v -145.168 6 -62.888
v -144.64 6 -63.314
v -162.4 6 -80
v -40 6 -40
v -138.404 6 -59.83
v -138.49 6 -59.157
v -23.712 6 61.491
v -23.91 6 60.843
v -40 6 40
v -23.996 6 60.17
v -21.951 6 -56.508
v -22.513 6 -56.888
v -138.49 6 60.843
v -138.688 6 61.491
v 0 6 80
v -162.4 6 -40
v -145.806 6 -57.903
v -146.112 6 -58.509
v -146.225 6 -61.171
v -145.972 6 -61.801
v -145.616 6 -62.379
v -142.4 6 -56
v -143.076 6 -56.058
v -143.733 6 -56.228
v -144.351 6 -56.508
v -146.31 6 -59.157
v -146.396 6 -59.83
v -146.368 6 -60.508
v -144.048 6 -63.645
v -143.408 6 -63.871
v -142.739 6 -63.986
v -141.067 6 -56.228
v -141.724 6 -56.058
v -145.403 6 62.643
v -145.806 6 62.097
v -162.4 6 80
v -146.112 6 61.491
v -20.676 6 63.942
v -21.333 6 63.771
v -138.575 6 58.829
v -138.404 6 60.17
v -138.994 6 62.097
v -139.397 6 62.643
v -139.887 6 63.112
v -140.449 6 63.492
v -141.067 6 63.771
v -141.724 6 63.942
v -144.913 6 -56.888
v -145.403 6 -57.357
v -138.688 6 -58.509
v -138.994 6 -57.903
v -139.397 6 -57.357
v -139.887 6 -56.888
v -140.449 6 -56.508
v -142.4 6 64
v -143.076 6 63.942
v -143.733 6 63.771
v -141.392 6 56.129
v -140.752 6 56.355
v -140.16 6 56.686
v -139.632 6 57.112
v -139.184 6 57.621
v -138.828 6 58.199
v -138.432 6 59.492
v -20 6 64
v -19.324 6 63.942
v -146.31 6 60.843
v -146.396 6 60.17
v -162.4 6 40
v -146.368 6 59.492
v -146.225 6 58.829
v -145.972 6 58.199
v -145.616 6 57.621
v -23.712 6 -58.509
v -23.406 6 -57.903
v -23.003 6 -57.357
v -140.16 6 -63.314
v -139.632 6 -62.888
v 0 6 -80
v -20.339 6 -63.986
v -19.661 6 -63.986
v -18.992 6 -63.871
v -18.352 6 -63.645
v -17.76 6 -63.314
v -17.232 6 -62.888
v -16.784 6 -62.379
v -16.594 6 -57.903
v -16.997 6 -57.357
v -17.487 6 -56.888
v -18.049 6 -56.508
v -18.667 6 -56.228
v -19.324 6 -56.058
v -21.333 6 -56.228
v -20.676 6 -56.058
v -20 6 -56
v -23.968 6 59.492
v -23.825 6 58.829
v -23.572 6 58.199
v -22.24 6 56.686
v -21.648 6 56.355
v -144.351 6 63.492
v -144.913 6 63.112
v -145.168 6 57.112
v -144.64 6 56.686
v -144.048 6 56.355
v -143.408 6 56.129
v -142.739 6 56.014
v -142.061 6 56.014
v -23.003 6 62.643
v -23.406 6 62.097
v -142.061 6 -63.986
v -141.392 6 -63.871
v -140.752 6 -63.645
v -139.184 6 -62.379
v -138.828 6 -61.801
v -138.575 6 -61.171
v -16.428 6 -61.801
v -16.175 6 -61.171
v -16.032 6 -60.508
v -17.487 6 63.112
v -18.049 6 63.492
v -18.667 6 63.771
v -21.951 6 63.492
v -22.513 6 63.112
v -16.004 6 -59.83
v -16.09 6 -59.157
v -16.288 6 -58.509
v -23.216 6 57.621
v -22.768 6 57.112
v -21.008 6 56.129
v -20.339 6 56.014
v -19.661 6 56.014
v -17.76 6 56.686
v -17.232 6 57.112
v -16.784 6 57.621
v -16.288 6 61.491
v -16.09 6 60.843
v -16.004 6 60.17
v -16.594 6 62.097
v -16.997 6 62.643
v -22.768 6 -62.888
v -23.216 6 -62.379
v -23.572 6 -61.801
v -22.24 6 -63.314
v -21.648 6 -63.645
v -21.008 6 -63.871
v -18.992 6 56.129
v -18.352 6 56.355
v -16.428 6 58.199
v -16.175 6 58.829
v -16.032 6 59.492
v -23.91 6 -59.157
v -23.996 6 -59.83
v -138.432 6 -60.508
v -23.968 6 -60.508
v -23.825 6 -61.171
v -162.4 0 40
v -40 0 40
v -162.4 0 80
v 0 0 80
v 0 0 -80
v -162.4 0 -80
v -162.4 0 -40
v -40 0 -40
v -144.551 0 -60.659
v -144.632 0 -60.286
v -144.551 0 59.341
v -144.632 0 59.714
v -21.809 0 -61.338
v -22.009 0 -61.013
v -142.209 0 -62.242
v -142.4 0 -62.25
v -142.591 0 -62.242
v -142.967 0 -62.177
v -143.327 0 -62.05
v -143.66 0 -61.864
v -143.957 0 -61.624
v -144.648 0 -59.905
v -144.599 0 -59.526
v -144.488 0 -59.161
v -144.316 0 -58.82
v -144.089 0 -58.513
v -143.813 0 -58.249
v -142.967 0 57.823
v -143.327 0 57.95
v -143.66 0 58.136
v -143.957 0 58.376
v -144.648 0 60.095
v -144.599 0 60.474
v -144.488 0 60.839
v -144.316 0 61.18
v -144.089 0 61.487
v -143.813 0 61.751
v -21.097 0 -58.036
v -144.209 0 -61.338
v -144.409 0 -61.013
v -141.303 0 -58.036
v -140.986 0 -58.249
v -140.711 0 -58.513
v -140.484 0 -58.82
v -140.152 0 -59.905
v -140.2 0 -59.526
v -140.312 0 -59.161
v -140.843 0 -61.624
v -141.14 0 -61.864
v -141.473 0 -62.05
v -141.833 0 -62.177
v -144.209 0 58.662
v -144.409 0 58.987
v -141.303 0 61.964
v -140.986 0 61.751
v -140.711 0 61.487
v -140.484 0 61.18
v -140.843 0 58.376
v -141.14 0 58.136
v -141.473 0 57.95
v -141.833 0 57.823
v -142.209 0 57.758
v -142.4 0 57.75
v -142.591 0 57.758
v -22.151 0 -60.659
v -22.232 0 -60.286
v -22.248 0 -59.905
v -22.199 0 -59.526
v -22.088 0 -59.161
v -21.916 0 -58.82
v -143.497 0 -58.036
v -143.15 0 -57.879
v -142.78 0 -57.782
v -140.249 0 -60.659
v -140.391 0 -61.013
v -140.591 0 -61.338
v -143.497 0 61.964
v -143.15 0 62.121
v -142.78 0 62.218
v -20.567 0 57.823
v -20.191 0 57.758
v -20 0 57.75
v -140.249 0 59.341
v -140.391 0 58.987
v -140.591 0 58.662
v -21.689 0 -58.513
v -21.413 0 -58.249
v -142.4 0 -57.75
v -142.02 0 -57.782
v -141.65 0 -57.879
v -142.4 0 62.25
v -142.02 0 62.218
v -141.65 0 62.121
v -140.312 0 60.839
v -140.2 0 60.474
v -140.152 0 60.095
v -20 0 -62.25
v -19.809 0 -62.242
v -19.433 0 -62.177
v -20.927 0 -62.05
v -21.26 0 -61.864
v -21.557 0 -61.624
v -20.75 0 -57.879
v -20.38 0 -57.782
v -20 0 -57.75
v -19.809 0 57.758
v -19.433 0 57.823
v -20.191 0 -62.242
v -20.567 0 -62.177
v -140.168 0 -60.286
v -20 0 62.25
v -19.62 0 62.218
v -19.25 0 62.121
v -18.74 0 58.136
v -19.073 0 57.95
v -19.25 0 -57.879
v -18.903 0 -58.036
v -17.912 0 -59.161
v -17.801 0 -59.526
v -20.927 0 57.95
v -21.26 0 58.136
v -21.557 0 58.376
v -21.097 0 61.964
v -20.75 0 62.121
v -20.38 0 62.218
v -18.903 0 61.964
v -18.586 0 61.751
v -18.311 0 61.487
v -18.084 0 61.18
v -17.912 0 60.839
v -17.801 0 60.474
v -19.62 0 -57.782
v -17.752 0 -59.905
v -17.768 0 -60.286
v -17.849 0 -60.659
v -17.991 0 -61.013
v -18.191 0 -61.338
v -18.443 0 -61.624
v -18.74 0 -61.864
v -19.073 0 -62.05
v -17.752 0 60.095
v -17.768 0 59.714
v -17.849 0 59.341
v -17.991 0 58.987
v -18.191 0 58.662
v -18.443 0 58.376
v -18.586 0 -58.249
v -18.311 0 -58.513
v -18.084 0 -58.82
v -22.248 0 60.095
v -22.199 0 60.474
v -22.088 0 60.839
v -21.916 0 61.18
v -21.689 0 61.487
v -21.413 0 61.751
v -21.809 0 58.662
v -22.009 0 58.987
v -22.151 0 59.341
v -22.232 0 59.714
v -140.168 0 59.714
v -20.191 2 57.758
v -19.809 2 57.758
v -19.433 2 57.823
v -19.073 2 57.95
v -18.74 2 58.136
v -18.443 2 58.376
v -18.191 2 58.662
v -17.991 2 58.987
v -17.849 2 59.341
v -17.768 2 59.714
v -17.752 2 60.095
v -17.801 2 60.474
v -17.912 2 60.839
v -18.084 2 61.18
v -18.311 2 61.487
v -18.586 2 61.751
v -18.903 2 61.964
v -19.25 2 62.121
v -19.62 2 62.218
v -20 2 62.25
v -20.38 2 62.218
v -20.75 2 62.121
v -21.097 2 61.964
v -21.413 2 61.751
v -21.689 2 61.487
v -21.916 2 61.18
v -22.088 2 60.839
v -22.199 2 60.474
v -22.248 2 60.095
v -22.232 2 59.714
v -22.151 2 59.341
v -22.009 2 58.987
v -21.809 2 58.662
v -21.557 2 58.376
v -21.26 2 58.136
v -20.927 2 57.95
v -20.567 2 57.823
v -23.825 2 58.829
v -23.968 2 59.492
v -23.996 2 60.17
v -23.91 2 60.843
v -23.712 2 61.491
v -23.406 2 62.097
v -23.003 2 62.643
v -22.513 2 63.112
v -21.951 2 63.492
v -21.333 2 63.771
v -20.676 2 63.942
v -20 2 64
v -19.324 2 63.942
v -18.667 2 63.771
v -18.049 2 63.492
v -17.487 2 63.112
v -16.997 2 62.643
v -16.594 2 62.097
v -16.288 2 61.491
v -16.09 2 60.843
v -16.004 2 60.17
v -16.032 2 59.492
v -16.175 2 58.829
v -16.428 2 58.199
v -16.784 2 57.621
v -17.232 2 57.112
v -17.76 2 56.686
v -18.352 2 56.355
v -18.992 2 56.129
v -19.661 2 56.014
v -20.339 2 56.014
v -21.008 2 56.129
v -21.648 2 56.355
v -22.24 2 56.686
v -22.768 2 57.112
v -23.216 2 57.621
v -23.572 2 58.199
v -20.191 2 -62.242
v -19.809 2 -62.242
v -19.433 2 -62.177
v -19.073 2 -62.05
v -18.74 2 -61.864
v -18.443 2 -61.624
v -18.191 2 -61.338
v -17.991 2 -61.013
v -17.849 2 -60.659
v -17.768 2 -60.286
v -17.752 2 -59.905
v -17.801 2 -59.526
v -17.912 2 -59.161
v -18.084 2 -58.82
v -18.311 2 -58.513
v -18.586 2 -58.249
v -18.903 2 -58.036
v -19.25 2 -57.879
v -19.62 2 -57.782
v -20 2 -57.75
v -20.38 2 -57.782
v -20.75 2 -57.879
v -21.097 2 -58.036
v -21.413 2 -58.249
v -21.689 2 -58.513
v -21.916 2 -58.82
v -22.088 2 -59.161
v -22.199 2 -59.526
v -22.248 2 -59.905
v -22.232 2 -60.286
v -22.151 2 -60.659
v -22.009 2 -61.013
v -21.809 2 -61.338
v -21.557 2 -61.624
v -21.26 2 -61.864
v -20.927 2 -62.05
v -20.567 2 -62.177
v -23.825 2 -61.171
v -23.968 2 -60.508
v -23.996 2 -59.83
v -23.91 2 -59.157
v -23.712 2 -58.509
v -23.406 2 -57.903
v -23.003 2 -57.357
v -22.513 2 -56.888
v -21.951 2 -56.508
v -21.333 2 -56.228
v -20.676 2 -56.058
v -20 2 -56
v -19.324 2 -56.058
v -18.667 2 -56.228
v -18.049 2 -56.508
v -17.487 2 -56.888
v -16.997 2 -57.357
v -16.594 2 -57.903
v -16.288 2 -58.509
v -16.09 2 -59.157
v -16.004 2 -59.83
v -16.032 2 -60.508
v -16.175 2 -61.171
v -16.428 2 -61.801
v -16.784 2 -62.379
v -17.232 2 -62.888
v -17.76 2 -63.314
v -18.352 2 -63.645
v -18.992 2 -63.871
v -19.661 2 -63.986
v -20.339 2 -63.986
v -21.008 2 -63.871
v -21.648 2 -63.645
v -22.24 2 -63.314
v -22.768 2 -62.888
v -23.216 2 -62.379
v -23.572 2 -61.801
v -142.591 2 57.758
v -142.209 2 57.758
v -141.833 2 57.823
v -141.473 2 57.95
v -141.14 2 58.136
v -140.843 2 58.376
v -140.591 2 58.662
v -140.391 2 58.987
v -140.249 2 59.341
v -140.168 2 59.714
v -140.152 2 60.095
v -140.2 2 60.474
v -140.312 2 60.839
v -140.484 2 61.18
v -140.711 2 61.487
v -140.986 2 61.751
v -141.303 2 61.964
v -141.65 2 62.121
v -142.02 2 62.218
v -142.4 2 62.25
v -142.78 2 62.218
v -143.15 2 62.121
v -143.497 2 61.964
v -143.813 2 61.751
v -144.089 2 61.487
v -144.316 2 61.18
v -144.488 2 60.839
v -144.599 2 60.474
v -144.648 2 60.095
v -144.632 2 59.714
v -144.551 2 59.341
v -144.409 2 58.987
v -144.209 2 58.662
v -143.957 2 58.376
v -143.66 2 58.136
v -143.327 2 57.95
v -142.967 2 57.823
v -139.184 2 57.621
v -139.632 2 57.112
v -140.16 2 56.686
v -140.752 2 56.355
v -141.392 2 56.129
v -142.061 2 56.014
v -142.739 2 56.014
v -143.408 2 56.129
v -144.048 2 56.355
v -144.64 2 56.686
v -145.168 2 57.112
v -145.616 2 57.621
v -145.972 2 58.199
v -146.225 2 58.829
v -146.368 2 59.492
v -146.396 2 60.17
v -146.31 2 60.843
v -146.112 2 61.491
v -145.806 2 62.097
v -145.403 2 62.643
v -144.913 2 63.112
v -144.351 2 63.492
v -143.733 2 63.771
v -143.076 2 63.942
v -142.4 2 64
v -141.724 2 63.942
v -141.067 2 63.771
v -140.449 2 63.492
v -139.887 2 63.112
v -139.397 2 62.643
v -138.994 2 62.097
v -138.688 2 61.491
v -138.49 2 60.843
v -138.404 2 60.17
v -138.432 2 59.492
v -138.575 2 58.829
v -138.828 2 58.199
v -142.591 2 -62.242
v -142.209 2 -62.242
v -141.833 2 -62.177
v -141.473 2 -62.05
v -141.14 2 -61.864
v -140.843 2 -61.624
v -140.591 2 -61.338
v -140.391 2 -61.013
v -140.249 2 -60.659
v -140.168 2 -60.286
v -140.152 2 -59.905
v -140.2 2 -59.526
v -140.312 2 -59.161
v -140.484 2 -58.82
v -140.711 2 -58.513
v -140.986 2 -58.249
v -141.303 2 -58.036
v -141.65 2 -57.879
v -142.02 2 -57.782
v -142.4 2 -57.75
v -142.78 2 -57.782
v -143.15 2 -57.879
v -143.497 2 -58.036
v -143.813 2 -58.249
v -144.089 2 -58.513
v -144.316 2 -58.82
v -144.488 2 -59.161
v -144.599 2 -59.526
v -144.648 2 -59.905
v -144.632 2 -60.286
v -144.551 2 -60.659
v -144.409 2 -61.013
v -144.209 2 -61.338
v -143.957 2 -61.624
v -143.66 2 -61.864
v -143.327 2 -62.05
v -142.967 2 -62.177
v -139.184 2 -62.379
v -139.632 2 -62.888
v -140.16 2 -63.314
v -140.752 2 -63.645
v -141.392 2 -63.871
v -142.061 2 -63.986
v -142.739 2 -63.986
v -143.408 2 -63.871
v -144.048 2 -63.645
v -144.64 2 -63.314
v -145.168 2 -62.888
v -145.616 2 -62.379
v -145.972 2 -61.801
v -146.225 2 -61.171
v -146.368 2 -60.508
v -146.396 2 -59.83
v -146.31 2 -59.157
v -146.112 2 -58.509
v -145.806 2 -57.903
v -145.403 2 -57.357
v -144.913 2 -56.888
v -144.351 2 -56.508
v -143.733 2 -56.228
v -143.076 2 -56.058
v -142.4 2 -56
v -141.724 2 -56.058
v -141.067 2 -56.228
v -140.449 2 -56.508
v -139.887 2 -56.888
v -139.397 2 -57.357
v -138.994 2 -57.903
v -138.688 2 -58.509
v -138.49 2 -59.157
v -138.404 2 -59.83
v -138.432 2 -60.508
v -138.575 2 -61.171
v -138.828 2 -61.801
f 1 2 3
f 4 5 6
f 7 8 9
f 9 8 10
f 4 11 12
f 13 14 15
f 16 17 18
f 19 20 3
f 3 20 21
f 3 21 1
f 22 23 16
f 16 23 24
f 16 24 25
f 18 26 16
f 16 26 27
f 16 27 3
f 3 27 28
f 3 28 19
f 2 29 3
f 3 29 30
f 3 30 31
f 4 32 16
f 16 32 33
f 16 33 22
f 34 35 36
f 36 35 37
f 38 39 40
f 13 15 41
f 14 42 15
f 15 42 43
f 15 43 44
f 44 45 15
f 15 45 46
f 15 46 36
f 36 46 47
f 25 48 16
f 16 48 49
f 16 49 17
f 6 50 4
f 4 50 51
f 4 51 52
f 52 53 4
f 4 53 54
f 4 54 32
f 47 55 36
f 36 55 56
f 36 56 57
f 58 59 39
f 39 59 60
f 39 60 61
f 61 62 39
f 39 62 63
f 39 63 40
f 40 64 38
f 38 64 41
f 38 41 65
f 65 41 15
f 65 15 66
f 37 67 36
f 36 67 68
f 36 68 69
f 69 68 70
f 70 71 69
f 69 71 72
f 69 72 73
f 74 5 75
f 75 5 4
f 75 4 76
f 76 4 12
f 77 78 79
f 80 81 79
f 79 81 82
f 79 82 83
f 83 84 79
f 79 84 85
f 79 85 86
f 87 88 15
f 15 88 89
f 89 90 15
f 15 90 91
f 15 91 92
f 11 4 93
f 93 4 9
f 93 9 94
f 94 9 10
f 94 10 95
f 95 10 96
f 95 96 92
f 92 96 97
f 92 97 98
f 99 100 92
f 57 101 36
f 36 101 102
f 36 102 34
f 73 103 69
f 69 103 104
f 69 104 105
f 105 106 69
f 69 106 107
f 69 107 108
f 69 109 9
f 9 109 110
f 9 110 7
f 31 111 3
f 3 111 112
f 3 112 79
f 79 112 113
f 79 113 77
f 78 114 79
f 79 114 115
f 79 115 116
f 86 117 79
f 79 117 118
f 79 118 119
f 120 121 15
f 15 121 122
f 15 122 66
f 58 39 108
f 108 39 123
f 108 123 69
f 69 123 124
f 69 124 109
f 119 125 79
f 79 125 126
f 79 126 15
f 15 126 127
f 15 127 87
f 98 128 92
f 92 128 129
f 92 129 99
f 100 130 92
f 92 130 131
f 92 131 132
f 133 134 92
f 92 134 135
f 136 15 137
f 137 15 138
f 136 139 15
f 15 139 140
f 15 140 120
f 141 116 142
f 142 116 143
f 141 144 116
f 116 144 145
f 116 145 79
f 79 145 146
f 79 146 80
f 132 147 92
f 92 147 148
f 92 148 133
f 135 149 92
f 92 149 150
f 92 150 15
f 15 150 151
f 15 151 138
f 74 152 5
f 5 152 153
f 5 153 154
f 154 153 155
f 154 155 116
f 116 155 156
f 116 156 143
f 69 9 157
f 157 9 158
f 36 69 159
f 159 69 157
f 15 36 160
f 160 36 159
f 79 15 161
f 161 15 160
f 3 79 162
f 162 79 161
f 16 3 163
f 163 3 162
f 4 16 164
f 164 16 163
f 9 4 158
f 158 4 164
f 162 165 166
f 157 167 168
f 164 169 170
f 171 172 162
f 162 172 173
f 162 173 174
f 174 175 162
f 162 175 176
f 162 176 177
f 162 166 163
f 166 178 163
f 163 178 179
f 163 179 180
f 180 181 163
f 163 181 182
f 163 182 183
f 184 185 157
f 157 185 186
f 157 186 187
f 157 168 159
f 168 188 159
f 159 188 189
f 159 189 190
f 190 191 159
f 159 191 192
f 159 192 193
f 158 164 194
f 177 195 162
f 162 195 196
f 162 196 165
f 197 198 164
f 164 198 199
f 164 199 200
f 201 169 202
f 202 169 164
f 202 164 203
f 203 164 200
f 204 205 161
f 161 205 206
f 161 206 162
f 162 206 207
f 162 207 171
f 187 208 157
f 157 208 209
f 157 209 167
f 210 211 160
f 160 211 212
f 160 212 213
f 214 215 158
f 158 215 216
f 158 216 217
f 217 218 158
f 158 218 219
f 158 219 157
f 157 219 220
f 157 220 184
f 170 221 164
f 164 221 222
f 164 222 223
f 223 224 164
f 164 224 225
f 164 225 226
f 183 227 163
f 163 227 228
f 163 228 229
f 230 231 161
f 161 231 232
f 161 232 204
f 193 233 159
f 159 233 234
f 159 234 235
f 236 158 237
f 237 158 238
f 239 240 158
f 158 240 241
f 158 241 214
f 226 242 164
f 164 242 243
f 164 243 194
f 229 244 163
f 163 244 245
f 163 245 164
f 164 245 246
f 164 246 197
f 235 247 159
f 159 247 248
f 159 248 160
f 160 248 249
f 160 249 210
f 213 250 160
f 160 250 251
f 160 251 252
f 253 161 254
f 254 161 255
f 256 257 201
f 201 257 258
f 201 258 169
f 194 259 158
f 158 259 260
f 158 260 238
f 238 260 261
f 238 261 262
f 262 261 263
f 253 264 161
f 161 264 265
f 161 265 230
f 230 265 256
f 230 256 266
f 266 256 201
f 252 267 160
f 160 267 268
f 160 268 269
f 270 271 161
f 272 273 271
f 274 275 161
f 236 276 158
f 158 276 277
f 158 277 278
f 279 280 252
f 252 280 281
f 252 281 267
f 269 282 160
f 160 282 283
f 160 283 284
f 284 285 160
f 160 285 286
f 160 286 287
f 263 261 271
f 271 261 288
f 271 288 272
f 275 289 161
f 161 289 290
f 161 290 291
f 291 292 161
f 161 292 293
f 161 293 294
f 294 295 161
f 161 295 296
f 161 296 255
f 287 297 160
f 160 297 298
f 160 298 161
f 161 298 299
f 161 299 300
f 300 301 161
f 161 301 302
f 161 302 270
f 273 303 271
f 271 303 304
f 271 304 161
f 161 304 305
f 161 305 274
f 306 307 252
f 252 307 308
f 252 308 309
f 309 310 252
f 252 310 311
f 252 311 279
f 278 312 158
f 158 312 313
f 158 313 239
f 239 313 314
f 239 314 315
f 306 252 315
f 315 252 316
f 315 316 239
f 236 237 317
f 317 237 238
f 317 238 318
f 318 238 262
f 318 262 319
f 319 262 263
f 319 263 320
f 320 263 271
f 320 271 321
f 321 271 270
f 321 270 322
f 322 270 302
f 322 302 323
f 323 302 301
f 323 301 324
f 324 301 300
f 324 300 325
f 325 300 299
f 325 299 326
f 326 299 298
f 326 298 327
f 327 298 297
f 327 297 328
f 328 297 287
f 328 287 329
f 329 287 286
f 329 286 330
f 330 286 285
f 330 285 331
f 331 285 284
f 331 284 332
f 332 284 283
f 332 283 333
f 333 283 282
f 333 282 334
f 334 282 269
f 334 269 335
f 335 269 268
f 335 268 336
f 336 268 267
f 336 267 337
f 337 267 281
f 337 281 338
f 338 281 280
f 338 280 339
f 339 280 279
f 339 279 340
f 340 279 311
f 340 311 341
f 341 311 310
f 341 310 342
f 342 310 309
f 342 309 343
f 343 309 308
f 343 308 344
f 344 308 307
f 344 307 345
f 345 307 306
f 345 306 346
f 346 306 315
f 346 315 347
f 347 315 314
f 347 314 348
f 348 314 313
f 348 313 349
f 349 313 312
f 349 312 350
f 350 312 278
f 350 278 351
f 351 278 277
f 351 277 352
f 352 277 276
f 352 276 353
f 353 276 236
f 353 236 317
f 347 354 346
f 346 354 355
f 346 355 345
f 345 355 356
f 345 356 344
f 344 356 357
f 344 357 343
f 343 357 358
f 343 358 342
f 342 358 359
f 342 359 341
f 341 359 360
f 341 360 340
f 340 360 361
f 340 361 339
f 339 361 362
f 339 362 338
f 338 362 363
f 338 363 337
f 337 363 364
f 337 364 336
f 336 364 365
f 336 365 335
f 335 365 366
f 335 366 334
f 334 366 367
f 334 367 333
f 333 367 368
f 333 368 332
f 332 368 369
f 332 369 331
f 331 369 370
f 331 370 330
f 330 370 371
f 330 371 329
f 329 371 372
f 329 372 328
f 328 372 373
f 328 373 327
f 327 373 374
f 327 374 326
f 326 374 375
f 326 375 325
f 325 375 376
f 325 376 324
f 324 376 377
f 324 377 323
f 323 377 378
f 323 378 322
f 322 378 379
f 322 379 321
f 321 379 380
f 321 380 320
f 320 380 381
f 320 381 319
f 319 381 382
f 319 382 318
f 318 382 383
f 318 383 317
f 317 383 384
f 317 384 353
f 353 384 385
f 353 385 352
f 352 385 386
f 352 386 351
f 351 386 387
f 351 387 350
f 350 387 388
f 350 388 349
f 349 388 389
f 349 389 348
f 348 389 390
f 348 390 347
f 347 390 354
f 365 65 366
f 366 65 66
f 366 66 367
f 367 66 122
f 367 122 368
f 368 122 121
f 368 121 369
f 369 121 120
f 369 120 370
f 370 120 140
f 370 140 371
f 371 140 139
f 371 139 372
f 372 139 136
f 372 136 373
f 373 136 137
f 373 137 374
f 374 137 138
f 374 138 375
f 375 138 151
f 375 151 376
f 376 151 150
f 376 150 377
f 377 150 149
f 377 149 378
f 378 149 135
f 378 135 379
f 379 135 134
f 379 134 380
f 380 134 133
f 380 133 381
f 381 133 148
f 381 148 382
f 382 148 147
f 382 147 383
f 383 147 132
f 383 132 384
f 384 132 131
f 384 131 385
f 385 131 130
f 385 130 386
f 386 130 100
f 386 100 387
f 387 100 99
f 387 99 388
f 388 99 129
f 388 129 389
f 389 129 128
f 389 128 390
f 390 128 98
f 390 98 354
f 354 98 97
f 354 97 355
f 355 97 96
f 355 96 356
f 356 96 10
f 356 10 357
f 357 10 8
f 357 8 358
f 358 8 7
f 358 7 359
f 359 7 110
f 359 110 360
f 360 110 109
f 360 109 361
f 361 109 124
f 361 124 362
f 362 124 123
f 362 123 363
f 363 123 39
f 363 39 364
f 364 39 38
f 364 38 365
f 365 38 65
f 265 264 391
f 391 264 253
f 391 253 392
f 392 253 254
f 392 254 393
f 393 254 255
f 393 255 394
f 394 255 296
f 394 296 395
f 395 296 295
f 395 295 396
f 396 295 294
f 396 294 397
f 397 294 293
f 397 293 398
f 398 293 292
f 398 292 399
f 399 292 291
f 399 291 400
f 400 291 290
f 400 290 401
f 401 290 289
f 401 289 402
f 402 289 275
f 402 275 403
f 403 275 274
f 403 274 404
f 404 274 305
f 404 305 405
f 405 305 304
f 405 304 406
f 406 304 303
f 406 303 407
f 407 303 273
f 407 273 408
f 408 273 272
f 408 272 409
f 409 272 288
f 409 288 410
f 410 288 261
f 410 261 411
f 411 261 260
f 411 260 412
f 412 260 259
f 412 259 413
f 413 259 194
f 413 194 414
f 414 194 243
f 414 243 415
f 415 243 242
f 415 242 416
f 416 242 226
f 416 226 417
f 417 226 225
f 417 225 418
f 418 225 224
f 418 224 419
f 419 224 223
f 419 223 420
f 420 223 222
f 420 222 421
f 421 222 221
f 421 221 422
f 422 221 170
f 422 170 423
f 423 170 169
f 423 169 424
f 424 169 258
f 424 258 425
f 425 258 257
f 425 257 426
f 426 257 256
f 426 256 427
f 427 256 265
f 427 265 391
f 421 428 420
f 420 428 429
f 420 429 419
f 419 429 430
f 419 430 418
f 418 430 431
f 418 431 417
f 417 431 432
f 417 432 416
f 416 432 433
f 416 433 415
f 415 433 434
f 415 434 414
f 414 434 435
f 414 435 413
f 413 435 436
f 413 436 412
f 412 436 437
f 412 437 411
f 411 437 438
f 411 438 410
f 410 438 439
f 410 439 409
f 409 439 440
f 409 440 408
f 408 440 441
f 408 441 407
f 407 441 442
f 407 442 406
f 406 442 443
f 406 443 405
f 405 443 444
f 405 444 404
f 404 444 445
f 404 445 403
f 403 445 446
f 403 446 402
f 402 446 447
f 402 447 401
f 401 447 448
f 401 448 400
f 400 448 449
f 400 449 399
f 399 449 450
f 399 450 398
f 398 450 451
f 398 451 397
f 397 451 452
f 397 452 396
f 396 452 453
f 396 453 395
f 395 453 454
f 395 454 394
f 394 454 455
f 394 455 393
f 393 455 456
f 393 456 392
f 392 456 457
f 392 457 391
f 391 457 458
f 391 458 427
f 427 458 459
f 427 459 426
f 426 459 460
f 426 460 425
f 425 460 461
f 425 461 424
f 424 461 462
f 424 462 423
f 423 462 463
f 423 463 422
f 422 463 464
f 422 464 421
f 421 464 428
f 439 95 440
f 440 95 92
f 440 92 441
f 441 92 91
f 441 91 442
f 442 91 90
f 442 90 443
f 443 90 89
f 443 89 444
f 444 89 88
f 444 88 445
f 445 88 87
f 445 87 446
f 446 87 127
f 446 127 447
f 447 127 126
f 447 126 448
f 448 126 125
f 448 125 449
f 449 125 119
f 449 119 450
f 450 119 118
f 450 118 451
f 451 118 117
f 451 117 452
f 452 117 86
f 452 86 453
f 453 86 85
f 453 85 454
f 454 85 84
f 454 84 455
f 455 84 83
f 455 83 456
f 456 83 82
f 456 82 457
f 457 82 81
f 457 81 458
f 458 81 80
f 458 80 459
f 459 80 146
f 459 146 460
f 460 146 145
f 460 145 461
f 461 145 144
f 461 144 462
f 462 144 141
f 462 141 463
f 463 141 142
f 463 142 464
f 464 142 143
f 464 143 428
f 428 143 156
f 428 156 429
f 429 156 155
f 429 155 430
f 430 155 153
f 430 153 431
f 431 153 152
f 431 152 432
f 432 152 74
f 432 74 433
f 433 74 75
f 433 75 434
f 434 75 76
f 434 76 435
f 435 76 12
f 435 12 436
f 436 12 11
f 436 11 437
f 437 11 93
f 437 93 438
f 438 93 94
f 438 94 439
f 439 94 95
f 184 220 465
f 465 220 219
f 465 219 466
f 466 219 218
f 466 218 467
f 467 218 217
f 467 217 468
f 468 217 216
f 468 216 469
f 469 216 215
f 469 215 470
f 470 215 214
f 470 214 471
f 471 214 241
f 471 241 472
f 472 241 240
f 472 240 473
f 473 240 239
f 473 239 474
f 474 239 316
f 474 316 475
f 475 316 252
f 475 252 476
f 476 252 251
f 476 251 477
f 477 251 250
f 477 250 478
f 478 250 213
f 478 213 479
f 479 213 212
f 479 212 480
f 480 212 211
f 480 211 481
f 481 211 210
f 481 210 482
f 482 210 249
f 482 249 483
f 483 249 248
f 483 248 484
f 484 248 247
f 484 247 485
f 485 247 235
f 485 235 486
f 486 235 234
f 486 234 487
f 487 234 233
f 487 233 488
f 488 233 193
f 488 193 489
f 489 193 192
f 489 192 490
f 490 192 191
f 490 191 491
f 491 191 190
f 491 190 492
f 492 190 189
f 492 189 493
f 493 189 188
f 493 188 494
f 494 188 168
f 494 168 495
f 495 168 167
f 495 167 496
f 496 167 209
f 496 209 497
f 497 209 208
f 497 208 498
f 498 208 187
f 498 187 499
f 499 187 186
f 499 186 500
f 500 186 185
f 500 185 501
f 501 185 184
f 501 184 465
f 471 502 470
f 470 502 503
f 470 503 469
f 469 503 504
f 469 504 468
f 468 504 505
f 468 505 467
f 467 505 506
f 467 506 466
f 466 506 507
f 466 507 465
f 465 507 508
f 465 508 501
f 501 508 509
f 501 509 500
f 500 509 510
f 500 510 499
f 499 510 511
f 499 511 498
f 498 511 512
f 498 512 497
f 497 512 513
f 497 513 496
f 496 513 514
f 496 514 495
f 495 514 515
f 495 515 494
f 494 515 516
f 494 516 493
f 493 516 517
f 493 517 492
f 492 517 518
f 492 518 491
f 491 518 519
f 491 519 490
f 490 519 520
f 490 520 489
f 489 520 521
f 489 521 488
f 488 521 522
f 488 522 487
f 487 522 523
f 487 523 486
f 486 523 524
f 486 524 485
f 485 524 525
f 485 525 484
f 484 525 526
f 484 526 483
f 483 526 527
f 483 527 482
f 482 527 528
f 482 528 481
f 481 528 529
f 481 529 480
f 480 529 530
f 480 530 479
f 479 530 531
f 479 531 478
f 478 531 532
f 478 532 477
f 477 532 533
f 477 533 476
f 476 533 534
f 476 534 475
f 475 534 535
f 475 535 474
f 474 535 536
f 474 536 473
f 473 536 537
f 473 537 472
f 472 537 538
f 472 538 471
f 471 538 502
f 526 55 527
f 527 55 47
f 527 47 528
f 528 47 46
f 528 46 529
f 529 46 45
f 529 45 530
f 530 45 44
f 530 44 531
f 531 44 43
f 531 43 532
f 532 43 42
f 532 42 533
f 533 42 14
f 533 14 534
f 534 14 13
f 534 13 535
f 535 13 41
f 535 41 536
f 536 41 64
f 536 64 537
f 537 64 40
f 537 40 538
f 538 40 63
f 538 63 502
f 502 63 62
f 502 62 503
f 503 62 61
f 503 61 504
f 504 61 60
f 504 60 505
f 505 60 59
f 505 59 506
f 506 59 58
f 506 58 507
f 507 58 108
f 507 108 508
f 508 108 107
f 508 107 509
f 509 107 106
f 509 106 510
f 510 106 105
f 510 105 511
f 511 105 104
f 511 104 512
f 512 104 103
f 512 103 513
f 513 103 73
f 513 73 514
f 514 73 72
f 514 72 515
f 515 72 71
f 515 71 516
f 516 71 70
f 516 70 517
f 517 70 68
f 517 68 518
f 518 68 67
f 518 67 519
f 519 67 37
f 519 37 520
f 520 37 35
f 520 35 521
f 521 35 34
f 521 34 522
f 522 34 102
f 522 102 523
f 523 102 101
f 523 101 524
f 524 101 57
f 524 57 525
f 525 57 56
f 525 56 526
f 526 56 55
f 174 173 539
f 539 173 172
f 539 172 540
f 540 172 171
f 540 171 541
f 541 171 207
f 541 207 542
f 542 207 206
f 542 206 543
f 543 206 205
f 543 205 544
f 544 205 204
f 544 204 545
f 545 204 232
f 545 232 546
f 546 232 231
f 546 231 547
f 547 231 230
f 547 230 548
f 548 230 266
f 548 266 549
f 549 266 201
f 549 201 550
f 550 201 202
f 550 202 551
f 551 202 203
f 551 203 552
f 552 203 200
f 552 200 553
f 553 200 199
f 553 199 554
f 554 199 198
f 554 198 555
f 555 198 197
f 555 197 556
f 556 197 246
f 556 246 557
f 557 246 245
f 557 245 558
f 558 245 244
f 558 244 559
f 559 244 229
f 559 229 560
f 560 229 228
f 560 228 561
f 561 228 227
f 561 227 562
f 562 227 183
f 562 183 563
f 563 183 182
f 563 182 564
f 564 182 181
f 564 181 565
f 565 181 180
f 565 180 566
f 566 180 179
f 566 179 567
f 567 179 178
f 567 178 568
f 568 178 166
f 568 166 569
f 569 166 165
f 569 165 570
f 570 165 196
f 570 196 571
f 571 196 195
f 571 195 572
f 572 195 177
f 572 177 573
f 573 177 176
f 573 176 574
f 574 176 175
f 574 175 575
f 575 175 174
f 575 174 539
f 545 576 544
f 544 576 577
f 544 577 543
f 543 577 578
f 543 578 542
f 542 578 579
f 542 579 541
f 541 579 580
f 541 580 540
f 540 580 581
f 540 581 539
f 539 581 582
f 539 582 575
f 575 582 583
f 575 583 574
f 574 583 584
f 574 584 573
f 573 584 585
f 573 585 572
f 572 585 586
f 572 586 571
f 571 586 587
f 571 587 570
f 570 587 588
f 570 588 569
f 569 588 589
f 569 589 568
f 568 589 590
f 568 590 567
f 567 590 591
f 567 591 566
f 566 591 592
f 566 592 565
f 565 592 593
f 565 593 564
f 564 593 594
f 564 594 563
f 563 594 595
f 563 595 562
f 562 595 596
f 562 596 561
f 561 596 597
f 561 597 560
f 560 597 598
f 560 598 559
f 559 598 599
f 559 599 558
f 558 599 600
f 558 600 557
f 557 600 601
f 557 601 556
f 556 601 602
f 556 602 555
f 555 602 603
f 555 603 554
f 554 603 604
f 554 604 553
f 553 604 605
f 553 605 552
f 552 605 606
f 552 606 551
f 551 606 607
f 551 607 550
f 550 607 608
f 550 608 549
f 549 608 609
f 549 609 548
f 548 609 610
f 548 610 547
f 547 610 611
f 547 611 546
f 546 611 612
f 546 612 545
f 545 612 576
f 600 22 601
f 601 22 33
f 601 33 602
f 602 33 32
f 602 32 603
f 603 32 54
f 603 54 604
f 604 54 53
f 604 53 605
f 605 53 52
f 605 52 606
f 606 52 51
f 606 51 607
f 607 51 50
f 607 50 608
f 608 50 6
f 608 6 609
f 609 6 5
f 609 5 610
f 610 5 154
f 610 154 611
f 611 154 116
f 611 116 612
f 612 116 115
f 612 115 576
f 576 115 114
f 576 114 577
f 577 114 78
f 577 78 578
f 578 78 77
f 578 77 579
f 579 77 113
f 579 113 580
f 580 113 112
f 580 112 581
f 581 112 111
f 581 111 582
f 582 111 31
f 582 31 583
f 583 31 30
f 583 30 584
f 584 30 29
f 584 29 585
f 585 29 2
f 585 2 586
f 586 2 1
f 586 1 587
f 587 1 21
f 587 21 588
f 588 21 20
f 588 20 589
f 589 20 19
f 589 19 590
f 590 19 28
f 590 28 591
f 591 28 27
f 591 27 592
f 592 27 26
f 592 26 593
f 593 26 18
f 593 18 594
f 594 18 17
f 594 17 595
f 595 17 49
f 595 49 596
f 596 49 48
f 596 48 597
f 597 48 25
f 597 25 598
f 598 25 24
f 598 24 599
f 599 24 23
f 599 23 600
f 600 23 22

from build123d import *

# Parameters (mm, degrees)
EXTRUDE_THIN1_DEPTH            = 6
CBORE_FOR_M4_SHCS1_D           = 4.5
CBORE_FOR_M4_SHCS1_CBORE_D     = 8
CBORE_FOR_M4_SHCS1_CBORE_DEPTH = 4


with BuildPart() as part:
    # Sketch1 → Extrude-Thin1 (new body)
    with BuildSketch(Plane(origin=(0, 0, 0), x_dir=(1, 0, 0), z_dir=(0, 1, 0))):
        Polygon((-162.4, 80), (0, 80), (0, -80), (-162.4, -80), (-162.4, -40), (-40, -40), (-40, 40), (-162.4, 40), align=None)
    extrude(amount=EXTRUDE_THIN1_DEPTH)

    # CBORE for M4 SHCS1 (through all)
    with Locations(Plane(origin=(0, 6, 0), x_dir=(1, 0, 0), z_dir=(0, 1, 0))):
        with Locations((-20, -60), (-142.4, 60), (-142.4, -60), (-20, 60)):
            CounterBoreHole(CBORE_FOR_M4_SHCS1_D / 2, CBORE_FOR_M4_SHCS1_CBORE_D / 2, CBORE_FOR_M4_SHCS1_CBORE_DEPTH)


solid = part.part
